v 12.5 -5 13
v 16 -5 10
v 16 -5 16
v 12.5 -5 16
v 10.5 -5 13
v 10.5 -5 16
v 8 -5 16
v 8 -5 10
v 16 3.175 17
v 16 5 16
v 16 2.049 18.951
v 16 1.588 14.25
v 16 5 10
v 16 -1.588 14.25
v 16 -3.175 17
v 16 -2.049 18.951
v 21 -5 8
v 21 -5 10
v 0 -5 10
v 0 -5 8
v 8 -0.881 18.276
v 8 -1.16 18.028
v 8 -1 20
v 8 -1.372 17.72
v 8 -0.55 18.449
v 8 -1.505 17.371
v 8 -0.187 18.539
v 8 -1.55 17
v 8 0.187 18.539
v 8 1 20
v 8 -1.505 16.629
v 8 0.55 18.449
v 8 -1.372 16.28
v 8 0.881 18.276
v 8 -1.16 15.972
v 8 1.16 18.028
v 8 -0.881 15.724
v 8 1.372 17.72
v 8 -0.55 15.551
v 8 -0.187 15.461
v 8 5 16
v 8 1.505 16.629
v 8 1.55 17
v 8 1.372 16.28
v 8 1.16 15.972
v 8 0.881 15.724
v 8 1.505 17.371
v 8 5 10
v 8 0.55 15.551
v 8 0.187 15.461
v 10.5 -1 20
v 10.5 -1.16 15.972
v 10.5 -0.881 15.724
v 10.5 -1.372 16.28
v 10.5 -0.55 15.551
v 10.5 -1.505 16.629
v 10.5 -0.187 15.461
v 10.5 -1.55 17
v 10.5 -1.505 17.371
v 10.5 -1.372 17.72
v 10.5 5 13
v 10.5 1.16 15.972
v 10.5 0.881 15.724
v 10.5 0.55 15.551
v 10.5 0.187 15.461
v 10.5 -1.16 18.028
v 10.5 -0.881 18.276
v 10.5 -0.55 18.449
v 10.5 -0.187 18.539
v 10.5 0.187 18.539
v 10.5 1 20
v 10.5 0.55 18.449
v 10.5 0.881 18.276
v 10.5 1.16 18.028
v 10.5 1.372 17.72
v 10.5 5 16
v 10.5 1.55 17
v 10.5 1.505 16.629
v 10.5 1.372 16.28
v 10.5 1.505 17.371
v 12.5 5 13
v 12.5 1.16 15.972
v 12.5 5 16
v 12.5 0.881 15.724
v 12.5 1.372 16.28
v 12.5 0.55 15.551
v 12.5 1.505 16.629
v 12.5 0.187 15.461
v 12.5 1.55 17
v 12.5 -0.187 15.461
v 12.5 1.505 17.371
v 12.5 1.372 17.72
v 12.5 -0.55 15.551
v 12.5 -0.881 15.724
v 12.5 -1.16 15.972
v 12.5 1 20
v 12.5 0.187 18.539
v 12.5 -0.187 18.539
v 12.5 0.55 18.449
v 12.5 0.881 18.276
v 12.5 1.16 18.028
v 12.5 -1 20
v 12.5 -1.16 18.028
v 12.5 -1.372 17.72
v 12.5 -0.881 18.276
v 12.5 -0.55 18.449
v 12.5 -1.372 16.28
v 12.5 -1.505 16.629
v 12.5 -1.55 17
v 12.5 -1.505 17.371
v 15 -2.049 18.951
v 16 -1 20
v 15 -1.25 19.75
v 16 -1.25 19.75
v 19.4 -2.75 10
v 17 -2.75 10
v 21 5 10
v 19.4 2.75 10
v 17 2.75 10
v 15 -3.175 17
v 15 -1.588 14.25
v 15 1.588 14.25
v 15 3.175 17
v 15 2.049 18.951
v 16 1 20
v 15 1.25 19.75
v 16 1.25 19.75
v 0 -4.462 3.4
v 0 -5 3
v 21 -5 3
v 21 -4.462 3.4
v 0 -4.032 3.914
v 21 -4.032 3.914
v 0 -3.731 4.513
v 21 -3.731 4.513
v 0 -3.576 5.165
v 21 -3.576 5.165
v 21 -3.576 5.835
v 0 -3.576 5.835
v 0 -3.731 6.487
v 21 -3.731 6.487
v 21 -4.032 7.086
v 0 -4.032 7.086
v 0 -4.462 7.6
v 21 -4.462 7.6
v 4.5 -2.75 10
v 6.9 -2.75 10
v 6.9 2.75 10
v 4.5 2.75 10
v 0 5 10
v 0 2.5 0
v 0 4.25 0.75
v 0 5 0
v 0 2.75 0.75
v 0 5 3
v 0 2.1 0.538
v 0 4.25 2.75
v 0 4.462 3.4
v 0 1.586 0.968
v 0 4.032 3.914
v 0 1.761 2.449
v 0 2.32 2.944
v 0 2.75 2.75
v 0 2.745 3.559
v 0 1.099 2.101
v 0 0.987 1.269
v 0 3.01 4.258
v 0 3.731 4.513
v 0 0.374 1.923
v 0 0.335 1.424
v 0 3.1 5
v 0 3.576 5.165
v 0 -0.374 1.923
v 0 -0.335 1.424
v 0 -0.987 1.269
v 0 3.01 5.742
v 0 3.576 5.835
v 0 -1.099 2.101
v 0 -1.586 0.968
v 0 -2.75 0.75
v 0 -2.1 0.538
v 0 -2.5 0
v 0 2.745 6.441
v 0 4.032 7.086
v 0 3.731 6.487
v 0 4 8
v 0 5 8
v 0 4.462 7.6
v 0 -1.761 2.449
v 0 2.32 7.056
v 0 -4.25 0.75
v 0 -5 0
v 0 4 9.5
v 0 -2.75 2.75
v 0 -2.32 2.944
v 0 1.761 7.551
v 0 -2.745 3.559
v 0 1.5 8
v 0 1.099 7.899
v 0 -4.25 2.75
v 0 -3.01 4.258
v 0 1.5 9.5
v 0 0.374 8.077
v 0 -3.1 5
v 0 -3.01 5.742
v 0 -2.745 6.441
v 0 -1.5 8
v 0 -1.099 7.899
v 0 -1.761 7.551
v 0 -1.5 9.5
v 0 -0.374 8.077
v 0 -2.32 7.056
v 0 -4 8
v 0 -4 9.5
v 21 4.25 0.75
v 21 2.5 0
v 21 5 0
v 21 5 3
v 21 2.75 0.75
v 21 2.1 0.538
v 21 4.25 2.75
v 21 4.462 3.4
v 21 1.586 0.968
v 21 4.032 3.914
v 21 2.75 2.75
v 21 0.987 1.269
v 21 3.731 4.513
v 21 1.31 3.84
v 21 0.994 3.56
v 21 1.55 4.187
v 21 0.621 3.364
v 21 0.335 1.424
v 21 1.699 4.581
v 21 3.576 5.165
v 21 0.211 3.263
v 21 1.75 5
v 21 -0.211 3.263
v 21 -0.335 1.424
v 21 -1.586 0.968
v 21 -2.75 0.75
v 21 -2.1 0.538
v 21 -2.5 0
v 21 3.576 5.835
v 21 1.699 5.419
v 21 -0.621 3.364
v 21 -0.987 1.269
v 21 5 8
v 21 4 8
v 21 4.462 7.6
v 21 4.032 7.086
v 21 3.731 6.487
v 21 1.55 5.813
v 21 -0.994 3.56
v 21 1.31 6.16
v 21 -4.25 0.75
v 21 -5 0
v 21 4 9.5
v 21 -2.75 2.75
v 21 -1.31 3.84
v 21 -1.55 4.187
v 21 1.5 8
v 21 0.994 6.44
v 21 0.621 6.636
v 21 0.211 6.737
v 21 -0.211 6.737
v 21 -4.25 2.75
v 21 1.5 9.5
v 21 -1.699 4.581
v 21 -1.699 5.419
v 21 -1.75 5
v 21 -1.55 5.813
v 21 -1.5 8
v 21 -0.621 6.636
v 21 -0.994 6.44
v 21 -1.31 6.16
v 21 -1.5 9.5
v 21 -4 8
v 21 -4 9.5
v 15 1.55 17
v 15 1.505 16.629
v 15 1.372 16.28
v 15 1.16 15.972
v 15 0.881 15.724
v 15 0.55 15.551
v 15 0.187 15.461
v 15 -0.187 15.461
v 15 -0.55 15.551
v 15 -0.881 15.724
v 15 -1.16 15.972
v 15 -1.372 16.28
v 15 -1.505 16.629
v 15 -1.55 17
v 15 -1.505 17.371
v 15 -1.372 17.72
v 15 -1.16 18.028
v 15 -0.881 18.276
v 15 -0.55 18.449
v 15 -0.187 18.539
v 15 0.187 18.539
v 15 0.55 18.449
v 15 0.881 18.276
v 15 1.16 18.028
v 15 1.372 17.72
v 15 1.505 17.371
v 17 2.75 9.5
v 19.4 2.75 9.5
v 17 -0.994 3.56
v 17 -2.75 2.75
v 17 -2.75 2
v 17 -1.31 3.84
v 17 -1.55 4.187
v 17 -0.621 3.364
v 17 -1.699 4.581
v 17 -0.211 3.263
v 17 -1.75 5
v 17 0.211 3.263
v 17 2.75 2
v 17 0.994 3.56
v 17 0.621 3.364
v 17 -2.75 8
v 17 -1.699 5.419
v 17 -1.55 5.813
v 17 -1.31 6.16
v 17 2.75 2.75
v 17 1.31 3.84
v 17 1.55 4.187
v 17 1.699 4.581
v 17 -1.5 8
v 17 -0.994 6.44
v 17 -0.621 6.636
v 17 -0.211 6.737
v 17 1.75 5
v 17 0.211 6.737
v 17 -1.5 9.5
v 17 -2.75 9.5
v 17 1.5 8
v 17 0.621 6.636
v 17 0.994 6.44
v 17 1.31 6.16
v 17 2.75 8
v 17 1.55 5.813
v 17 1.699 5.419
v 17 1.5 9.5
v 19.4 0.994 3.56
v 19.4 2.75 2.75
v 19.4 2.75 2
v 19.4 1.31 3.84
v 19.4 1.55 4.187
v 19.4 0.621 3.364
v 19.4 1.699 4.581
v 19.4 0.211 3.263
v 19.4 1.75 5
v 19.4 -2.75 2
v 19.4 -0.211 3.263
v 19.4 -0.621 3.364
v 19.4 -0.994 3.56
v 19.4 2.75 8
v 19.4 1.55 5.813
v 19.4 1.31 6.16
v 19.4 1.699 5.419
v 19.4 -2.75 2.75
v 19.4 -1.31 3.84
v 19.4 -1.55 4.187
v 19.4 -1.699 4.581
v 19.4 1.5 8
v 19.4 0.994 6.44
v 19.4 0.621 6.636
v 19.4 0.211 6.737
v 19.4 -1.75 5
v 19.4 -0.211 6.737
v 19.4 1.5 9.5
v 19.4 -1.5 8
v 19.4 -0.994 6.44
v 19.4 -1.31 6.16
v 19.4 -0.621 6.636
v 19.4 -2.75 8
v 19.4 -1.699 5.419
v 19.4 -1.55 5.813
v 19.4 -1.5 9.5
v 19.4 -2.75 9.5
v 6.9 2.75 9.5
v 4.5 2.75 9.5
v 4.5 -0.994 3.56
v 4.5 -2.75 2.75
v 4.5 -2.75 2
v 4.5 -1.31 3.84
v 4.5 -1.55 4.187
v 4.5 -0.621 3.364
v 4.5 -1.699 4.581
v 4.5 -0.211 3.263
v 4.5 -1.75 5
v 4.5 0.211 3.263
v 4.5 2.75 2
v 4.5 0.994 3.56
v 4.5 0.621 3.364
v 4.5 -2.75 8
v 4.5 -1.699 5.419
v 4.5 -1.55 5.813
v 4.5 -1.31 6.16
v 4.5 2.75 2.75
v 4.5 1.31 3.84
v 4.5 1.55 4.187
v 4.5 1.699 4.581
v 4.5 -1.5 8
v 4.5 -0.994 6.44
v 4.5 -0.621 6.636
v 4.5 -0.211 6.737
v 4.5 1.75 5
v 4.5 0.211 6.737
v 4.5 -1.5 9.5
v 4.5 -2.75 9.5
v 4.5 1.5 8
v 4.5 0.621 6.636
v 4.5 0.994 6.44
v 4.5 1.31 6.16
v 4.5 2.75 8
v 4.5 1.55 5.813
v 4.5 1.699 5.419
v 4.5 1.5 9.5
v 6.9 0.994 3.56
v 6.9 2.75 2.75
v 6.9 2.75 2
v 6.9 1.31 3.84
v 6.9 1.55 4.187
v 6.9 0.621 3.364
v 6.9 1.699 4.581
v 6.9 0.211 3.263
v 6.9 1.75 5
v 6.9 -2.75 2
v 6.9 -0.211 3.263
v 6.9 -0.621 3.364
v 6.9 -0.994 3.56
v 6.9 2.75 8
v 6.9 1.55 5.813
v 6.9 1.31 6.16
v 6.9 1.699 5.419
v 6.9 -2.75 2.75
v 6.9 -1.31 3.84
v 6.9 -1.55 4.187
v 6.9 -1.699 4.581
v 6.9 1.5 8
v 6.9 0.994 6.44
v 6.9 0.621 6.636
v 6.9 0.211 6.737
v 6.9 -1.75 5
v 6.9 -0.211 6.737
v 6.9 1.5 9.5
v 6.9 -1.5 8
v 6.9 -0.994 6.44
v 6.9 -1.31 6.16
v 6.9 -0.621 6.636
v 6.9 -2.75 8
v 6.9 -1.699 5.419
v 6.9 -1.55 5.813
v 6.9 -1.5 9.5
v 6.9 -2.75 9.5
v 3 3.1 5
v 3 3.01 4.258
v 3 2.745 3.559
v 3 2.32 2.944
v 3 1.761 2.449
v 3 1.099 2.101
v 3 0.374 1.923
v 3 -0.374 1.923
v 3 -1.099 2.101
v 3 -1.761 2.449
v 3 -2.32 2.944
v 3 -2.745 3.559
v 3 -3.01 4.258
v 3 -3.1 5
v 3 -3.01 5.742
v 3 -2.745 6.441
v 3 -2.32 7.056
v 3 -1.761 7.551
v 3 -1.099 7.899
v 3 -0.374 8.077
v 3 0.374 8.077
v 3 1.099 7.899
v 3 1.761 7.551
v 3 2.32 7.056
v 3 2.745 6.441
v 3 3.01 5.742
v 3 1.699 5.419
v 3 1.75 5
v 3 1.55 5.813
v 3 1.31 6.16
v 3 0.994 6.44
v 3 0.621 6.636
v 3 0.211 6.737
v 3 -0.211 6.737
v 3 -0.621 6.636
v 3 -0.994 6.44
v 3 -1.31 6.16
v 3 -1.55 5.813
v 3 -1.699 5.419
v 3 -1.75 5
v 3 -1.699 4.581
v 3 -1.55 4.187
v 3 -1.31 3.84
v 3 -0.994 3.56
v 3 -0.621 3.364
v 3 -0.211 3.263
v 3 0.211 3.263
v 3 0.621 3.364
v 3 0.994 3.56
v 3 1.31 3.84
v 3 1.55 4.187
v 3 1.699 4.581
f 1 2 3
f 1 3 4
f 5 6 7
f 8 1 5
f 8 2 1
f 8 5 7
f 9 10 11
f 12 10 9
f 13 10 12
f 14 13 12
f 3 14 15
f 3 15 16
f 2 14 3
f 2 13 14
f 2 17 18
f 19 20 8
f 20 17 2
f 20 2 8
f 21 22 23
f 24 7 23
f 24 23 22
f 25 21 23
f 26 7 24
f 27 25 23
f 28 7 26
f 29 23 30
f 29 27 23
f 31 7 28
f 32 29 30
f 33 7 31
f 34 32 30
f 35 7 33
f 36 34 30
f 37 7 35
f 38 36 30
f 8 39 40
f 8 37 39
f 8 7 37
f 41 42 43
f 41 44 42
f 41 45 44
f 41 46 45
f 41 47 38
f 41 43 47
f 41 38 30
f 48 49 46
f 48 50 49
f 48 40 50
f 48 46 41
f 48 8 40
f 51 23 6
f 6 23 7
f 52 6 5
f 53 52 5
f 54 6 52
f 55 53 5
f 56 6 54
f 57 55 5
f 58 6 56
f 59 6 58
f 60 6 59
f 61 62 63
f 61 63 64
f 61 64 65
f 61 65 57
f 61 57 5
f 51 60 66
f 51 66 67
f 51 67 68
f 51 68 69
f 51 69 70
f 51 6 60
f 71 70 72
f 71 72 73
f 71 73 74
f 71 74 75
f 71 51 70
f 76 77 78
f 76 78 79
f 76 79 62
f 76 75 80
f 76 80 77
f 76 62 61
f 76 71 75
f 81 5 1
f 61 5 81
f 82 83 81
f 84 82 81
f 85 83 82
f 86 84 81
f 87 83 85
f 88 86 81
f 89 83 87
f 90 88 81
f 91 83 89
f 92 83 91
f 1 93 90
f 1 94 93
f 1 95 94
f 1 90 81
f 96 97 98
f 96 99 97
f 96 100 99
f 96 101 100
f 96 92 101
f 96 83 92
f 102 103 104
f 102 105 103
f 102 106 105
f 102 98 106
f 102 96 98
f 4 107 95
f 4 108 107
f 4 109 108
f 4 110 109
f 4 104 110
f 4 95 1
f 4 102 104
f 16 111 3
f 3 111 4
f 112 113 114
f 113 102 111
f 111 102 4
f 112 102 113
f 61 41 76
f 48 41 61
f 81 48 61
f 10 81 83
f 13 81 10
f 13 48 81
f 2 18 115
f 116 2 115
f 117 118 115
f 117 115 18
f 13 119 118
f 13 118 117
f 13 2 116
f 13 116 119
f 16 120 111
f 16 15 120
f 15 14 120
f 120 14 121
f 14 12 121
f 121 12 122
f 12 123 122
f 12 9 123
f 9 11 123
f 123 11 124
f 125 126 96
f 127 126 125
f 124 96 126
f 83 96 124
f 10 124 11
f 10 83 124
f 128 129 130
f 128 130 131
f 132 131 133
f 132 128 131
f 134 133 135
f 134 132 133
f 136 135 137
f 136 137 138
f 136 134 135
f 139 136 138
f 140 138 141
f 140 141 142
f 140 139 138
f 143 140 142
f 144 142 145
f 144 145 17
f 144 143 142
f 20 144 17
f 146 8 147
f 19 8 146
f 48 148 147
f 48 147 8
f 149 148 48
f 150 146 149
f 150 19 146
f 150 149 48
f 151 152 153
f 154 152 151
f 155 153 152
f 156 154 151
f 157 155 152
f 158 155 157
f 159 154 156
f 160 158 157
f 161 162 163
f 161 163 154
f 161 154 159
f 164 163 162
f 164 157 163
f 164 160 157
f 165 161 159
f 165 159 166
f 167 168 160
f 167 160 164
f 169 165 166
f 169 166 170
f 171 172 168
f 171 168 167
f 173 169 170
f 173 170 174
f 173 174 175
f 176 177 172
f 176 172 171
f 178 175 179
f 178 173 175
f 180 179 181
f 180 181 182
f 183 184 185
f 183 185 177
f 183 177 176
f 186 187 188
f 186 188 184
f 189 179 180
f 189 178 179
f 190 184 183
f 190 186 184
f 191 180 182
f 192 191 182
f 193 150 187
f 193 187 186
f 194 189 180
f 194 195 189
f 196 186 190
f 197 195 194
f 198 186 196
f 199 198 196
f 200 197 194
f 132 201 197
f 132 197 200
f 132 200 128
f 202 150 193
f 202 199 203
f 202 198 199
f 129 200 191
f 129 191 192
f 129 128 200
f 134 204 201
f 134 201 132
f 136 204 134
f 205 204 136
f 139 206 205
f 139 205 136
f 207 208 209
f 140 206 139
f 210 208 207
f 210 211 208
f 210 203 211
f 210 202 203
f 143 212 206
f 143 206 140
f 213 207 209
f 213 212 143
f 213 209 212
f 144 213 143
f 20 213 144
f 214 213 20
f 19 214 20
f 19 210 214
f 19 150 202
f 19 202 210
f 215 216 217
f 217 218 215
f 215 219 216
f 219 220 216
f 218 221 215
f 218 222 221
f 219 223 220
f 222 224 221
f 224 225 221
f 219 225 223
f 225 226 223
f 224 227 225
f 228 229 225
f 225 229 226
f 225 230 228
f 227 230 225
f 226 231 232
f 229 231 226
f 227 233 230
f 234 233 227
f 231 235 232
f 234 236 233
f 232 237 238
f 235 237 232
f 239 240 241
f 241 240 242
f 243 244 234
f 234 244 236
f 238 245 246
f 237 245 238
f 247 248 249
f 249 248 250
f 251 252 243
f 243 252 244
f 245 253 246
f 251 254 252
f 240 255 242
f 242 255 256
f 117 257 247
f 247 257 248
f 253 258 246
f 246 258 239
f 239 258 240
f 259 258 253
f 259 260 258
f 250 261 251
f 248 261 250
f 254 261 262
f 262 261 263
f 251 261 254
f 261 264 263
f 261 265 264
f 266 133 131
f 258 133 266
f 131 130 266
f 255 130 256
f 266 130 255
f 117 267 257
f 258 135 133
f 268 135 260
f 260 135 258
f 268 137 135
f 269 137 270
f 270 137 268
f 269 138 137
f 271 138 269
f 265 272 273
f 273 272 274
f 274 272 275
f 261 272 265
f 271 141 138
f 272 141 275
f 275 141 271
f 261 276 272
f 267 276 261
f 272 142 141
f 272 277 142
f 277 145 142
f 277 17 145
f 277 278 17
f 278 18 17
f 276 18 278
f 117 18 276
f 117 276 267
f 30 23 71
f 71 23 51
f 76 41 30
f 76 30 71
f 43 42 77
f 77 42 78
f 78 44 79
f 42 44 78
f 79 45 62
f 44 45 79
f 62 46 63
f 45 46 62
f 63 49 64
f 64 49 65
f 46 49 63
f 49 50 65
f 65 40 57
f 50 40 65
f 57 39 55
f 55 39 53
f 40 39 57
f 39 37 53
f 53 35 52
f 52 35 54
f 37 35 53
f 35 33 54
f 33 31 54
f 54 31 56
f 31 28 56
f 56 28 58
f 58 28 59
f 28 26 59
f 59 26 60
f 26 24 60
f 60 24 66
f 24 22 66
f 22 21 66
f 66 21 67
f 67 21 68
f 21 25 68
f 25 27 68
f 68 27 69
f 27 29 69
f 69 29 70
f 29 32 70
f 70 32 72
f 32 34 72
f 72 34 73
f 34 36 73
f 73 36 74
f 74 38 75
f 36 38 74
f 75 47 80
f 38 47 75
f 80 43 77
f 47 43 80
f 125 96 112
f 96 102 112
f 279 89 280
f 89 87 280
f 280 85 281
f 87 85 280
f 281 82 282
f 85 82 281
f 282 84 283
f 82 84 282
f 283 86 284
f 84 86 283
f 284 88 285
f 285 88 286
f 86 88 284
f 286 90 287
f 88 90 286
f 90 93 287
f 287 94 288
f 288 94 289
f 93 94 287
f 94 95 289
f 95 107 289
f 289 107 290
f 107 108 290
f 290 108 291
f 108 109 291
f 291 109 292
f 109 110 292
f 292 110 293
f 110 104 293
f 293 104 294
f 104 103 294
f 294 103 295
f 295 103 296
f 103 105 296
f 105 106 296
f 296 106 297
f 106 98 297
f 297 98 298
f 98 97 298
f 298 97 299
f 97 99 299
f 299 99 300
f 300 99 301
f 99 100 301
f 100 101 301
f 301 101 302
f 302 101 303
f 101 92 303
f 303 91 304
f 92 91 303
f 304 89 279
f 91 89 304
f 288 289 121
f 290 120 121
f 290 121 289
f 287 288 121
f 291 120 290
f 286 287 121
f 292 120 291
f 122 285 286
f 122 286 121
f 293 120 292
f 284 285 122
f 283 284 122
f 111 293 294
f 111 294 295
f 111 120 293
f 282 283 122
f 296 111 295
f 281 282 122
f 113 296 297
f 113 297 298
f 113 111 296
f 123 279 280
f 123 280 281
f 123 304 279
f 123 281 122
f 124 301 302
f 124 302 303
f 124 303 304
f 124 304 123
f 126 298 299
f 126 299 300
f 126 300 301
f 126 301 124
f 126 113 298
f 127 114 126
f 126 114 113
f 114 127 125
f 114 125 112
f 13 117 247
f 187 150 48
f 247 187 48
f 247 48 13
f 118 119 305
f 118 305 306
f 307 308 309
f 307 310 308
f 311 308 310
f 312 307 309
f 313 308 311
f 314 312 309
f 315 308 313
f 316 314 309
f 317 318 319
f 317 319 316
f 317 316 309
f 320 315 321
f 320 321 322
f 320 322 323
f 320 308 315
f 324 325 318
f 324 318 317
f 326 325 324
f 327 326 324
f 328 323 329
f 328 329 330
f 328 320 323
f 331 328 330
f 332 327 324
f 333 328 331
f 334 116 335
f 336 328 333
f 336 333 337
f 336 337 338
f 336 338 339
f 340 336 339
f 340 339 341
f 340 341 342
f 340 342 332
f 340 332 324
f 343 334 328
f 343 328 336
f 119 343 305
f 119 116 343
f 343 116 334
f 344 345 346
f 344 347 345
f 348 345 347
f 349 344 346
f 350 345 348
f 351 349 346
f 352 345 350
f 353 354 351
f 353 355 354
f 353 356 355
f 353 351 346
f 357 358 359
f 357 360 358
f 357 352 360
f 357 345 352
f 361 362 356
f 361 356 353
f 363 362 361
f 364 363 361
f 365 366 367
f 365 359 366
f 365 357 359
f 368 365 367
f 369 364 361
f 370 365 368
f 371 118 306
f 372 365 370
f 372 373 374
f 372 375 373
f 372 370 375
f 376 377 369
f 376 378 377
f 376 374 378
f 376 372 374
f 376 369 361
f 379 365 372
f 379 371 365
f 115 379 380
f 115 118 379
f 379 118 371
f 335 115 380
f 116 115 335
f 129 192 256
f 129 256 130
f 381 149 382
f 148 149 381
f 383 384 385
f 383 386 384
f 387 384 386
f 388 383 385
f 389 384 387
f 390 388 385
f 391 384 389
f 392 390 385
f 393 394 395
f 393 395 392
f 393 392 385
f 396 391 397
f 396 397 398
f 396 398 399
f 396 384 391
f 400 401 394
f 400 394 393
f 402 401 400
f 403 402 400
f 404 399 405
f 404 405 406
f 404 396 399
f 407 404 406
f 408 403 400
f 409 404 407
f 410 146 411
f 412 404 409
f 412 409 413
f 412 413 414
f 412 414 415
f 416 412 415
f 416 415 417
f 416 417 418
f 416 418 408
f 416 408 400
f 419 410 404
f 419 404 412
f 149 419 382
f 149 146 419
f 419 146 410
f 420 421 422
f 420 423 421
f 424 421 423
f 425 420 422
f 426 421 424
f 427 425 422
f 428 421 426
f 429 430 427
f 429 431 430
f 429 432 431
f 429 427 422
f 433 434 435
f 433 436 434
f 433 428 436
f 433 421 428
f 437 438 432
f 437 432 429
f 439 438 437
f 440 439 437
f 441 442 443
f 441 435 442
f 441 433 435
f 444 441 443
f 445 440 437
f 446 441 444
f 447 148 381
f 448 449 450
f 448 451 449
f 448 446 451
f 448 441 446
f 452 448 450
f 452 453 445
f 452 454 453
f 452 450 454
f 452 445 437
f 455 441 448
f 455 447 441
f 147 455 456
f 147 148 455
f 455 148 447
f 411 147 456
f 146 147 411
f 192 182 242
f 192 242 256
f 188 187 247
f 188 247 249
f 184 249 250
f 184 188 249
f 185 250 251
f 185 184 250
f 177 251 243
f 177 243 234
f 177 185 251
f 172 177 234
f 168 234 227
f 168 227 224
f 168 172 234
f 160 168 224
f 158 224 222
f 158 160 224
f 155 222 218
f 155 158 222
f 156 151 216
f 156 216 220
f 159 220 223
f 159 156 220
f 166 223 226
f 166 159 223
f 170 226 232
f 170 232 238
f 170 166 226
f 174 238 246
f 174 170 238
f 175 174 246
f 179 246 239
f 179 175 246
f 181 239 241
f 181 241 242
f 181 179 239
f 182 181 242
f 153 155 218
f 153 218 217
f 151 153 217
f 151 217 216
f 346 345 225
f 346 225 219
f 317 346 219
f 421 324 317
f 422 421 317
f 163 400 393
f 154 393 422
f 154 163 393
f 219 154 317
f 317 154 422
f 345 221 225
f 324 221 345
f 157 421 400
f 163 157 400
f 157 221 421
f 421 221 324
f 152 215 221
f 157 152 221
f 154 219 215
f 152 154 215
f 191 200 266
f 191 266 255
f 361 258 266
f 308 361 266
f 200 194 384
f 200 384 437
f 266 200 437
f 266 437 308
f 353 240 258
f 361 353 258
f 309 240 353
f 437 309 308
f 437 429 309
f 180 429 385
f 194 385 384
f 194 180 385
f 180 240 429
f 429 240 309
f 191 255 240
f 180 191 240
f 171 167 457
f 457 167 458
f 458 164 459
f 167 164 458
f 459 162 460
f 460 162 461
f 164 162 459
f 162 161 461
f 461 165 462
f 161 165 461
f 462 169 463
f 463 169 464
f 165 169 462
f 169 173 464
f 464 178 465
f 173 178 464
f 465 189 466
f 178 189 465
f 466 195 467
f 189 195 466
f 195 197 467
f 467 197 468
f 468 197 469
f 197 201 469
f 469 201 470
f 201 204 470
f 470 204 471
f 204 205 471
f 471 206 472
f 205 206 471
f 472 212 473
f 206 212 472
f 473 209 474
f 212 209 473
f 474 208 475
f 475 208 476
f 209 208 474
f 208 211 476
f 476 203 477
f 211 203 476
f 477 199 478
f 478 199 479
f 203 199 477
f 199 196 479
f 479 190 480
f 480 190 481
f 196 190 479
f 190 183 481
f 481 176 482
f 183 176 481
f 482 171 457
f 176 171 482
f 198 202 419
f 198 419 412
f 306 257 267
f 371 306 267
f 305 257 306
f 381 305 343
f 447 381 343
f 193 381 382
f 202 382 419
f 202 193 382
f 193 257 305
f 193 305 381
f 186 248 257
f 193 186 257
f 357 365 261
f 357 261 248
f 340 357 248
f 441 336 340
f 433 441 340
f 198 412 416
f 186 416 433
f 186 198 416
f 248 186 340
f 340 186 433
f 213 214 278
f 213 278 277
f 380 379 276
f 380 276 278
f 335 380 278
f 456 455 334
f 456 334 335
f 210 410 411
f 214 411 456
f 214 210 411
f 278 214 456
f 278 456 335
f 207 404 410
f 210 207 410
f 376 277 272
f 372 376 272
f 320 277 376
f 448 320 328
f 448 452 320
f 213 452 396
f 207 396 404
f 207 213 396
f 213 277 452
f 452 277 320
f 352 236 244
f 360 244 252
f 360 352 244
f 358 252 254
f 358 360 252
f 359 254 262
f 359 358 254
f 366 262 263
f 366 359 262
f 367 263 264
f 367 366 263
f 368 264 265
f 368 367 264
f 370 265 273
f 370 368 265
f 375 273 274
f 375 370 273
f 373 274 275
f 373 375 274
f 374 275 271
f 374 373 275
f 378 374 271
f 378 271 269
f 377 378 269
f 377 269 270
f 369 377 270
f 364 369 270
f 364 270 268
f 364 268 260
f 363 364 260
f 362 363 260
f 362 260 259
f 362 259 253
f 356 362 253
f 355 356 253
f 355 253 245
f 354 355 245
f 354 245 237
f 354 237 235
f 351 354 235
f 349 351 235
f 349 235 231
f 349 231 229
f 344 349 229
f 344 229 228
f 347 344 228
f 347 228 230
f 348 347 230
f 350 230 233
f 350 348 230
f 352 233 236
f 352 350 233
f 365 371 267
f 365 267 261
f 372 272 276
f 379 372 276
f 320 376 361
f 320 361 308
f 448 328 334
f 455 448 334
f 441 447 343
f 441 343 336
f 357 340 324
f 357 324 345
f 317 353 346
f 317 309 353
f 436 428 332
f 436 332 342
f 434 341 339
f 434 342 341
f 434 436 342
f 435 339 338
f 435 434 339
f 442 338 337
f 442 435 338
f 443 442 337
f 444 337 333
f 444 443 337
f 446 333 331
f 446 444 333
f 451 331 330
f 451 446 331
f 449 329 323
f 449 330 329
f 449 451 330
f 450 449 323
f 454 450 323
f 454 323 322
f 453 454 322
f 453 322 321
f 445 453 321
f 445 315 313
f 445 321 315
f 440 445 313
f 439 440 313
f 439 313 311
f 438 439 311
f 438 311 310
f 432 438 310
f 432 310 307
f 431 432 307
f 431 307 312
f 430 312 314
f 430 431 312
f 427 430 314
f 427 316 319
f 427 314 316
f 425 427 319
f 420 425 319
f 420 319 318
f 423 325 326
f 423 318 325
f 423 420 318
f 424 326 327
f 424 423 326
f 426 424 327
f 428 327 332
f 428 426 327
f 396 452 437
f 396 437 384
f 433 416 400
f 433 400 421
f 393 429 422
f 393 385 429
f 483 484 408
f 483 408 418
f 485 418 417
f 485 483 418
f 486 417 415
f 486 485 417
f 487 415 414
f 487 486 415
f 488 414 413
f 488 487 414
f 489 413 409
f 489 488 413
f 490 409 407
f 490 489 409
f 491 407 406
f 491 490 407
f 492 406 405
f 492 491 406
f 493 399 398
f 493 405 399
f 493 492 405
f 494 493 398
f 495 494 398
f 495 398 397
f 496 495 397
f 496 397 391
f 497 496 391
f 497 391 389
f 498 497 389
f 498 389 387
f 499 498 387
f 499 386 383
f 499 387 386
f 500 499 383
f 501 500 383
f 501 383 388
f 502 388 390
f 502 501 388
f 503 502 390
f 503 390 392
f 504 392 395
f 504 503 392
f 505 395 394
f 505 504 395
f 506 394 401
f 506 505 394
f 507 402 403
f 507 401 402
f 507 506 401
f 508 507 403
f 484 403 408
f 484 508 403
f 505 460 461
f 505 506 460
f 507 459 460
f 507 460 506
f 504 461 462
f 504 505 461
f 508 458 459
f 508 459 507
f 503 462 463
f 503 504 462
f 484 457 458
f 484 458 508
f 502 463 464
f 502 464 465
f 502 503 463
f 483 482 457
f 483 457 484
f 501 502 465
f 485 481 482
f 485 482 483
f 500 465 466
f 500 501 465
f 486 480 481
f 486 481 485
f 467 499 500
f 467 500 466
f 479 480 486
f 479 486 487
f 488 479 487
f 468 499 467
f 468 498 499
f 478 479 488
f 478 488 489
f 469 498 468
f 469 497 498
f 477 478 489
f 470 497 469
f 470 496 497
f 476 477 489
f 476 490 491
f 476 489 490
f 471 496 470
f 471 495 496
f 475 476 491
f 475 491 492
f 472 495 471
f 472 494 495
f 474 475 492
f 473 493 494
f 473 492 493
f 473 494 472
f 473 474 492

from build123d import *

# Parameters (mm, degrees)
SKETCH_R        = 1.75
PAD_DEPTH       = 21
SKETCH002_W     = 5.5
SKETCH002_H     = 2.4
POCKET_DEPTH    = 8
SKETCH003_R     = 3.1
POCKET001_DEPTH = 3
SKETCH007_W     = 1.5
SKETCH007_H     = 2
SKETCH007_W_2   = 2.5
SKETCH007_H_2   = 1.5
POCKET002_DEPTH = 21.001
SKETCH008_W     = 10
SKETCH008_H     = 8
PAD001_DEPTH    = 10
CHAMFER_SIZE    = 4
SKETCH009_R     = 1.55
POCKET003_DEPTH = 13.001
POCKET004_DEPTH = 1
SKETCH011_W     = 10
SKETCH011_H     = 2
POCKET005_DEPTH = 7


with BuildPart() as part:
    # Sketch → Pad (new body)
    with BuildSketch(Plane.YZ):
        with BuildLine():
            Line((-5, 8), (-5, 10))
            Line((-5, 10), (5, 10))
            Line((5, 10), (5, 8))
            ThreePointArc((5, 8), (3.556624, 5.5), (5, 3))
            Line((5, 3), (5, 0))
            Line((5, 0), (2.5, 0))
            ThreePointArc((2.5, 0), (0, 1.443376), (-2.5, 0))
            Line((-2.5, 0), (-5, 0))
            Line((-5, 0), (-5, 3))
            ThreePointArc((-5, 3), (-3.556624, 5.5), (-5, 8))
        make_face()
        with Locations((0, 5)):
            Circle(SKETCH_R, mode=Mode.SUBTRACT)
    extrude(amount=PAD_DEPTH)

    # Sketch002 → Pocket (cut)
    with BuildSketch(Plane(origin=(0, 0, 10), x_dir=(0, -1, 0), z_dir=(0, 0, 1))):
        with Locations((0, 5.7)):
            Rectangle(SKETCH002_W, SKETCH002_H)
        with Locations((0, 18.2)):
            Rectangle(SKETCH002_W, SKETCH002_H)
    extrude(amount=-POCKET_DEPTH, mode=Mode.SUBTRACT)

    # Sketch003 (on Face4 of Pocket) → Pocket001 (cut)
    with BuildSketch(Plane(origin=(0, 0, 0), x_dir=(0, 1, 0), z_dir=(-1, 0, 0))):
        with Locations((0, -5)):
            Circle(SKETCH003_R)
    extrude(amount=-POCKET001_DEPTH, mode=Mode.SUBTRACT)

    # Sketch007 (on Face4 of Pocket001) → Pocket002 (cut, through all)
    with BuildSketch(Plane(origin=(0, 0, 0), x_dir=(0, 1, 0), z_dir=(-1, 0, 0))):
        with Locations((-3.5, -1.75)):
            Rectangle(SKETCH007_W, SKETCH007_H)
        with Locations((3.5, -1.75)):
            Rectangle(SKETCH007_W, SKETCH007_H)
        with Locations((-2.75, -8.75)):
            Rectangle(SKETCH007_W_2, SKETCH007_H_2)
        with Locations((2.75, -8.75)):
            Rectangle(SKETCH007_W_2, SKETCH007_H_2)
    extrude(amount=-POCKET002_DEPTH, mode=Mode.SUBTRACT)

    # Sketch008 (on Face3 of Pocket002) → Pad001 (join)
    with BuildSketch(Plane(origin=(0, 0, 10), x_dir=(0, -1, 0), z_dir=(0, 0, 1))):
        with Locations((0, 12)):
            Rectangle(SKETCH008_W, SKETCH008_H)
    extrude(amount=PAD001_DEPTH)

    # Chamfer
    chamfer_edges = [part.edges().sort_by_distance(p)[0] for p in [
        (12, -5, 20),
        (12, 5, 20),
    ]]
    chamfer(chamfer_edges, length=CHAMFER_SIZE)

    # Sketch009 (on Face5 of Chamfer) → Pocket003 (cut, through all)
    with BuildSketch(Plane(origin=(8, 0, 0), x_dir=(0, 1, 0), z_dir=(-1, 0, 0))):
        with Locations((0, -17)):
            Circle(SKETCH009_R)
    extrude(amount=-POCKET003_DEPTH, mode=Mode.SUBTRACT)

    # Sketch010 (on Face2 of Pocket003) → Pocket004 (cut)
    with BuildSketch(Plane.YZ.offset(16)):
        Polygon((3.175426, 17), (1.587713, 19.75), (-1.587713, 19.75), (-3.175426, 17), (-1.587713, 14.25), (1.587713, 14.25), align=None)
    extrude(amount=-POCKET004_DEPTH, mode=Mode.SUBTRACT)

    # Sketch011 (on Face17 of Pocket004) → Pocket005 (cut)
    with BuildSketch(Plane(origin=(0, 0, 20), x_dir=(0, -1, 0), z_dir=(0, 0, 1))):
        with Locations((0, 11.5)):
            Rectangle(SKETCH011_W, SKETCH011_H)
    extrude(amount=-POCKET005_DEPTH, mode=Mode.SUBTRACT)


solid = part.part
